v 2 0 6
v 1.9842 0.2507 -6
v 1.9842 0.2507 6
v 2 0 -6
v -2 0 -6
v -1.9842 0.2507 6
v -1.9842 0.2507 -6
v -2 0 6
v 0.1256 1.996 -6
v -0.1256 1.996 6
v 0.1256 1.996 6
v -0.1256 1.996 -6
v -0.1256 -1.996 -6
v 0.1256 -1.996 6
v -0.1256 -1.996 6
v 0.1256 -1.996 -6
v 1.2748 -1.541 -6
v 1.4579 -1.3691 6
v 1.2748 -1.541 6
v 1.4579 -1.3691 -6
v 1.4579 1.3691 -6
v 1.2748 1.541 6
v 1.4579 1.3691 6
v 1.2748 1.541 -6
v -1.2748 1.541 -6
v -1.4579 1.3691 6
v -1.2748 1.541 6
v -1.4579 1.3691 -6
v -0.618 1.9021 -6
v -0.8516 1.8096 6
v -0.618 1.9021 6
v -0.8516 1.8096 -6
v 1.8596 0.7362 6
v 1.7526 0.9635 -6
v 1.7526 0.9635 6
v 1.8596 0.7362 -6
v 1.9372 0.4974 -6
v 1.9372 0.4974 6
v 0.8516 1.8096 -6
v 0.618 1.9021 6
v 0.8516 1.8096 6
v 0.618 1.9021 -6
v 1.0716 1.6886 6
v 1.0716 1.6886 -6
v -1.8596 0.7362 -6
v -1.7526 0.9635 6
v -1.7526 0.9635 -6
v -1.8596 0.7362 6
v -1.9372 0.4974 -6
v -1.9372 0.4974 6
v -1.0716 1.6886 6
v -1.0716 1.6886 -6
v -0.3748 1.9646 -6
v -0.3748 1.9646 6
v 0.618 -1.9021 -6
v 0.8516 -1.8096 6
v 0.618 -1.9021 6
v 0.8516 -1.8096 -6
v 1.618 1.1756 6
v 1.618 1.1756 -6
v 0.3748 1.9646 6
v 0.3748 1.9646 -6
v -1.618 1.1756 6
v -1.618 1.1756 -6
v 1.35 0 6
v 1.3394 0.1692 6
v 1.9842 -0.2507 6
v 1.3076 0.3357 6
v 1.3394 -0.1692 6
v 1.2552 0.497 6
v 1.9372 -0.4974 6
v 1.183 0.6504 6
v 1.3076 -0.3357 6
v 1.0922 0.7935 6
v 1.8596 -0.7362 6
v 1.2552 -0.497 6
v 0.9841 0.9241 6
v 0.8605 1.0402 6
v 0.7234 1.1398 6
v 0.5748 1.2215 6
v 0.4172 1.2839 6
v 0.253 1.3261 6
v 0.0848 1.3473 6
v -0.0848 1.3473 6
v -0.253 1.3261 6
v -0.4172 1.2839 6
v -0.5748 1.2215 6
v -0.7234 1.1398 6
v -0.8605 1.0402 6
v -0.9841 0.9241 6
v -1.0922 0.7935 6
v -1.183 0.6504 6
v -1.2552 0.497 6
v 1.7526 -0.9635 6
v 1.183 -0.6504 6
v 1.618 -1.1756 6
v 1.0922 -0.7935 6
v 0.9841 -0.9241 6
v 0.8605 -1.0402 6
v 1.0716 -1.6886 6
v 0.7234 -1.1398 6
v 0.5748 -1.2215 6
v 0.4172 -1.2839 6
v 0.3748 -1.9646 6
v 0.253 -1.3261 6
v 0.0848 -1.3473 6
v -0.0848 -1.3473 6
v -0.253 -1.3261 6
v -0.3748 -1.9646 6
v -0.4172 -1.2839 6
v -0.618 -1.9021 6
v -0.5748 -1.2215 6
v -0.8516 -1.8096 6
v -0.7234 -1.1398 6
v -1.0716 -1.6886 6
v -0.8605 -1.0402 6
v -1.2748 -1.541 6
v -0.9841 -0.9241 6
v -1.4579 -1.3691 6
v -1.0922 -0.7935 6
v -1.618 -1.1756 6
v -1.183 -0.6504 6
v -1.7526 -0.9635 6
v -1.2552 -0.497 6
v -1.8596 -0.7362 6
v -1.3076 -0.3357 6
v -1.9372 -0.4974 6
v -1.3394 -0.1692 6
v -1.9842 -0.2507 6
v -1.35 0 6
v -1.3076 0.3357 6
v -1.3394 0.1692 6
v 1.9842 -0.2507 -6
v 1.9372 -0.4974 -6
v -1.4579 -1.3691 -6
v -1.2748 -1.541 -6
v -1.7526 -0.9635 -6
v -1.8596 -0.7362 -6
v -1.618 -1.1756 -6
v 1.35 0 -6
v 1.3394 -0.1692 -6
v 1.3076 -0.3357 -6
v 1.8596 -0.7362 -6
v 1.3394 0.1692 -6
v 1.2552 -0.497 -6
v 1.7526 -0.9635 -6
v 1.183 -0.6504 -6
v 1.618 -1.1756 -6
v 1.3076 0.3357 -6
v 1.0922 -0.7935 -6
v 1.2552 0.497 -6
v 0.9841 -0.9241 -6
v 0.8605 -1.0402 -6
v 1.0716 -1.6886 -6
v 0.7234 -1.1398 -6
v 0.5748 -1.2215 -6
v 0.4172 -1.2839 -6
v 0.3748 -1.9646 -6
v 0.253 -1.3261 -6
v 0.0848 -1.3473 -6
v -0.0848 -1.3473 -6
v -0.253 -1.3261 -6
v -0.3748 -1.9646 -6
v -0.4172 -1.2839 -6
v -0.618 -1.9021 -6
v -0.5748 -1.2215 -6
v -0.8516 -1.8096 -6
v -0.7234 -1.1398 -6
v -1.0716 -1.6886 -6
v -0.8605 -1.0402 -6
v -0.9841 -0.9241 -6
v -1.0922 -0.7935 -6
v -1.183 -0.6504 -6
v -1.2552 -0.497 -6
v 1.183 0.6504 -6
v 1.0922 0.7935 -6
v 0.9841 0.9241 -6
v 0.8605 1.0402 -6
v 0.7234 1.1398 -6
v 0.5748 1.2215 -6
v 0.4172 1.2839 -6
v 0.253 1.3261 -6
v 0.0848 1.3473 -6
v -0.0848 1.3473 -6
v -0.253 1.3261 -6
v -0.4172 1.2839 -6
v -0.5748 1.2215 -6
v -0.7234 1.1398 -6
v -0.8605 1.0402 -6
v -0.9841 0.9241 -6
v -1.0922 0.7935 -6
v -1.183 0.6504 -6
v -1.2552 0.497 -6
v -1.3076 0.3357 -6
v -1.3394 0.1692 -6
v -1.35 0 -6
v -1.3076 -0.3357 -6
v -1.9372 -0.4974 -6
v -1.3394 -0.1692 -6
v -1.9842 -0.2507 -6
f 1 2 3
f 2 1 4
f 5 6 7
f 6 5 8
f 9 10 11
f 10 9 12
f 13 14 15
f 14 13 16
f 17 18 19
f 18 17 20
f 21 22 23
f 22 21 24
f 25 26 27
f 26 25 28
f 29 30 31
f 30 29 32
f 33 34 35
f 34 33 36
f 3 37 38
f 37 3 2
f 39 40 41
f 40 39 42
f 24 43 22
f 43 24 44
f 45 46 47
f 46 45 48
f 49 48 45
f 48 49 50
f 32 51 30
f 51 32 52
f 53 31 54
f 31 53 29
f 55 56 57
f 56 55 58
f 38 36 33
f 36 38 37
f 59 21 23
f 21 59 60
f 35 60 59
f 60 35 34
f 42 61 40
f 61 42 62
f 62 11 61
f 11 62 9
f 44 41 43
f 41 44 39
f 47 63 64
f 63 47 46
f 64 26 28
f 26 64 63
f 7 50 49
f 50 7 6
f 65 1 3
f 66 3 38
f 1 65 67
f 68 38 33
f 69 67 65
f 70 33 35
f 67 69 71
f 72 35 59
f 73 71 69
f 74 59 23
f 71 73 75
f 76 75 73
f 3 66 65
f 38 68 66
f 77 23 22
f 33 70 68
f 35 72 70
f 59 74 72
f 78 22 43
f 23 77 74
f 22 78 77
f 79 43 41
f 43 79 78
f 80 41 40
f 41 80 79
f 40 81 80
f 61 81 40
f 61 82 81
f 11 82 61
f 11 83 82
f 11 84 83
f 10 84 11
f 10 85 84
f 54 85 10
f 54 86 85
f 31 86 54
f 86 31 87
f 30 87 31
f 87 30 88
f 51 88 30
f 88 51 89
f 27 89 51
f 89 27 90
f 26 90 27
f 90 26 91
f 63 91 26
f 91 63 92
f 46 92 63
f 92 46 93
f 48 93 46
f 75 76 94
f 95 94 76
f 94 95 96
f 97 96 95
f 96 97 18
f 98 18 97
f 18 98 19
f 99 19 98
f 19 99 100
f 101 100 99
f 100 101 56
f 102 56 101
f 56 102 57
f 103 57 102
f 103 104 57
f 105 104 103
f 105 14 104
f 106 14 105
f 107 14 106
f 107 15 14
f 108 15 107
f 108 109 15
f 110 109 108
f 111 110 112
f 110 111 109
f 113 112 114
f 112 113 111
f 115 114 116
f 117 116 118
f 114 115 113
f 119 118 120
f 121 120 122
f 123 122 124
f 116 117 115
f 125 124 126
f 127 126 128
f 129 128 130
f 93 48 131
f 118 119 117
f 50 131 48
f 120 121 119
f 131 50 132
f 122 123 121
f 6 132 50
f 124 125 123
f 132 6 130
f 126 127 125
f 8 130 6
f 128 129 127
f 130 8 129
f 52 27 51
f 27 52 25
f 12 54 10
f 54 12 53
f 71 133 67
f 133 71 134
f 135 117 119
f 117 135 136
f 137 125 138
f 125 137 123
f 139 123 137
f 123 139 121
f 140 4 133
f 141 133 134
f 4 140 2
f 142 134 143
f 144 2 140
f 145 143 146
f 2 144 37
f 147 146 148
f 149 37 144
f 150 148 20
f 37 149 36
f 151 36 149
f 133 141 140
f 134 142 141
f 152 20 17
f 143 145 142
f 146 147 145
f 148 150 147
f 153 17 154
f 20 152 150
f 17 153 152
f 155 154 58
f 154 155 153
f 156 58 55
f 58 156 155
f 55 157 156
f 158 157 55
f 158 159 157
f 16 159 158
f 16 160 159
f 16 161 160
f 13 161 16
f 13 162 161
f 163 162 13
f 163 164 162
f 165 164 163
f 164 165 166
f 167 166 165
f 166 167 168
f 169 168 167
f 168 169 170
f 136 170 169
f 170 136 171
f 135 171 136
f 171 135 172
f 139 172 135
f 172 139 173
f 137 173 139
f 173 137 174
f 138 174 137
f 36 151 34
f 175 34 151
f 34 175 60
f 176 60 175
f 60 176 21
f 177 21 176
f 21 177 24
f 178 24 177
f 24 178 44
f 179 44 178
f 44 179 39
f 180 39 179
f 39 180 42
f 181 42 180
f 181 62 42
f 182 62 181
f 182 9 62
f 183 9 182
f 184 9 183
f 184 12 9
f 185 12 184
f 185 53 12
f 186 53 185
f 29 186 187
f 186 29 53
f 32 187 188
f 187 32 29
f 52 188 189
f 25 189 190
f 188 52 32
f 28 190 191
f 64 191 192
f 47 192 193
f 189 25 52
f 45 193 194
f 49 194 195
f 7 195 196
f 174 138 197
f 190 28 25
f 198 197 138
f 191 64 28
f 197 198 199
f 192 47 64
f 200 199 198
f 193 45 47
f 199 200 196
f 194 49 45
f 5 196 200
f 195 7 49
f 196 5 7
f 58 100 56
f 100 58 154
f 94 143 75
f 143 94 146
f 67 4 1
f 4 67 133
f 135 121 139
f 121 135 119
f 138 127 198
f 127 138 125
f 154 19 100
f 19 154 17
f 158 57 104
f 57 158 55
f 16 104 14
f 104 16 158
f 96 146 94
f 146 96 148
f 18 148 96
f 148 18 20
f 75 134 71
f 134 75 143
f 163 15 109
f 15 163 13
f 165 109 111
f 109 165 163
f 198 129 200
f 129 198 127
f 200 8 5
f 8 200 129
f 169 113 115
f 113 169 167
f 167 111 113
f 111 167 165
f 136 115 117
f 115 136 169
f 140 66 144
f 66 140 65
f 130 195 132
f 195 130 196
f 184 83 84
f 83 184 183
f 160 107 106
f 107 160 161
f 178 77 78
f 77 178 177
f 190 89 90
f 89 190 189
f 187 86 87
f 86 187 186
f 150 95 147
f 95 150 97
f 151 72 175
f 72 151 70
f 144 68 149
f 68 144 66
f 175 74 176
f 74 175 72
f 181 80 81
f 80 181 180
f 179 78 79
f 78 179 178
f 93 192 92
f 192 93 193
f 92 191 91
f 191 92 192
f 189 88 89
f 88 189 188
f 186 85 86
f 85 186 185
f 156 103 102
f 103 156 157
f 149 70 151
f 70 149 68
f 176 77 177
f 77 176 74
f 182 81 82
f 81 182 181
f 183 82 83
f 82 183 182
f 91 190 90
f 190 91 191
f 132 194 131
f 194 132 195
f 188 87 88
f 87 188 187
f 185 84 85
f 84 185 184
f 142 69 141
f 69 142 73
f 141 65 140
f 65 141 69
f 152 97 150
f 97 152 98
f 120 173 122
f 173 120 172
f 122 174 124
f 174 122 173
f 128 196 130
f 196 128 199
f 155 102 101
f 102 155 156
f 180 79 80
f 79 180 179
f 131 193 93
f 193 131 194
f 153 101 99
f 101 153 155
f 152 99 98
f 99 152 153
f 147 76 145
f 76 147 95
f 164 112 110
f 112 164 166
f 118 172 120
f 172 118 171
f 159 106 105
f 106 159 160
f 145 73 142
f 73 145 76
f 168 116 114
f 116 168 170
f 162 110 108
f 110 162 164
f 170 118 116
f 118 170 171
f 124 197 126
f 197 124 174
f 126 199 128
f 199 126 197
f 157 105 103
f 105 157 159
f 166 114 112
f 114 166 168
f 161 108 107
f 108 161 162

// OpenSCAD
$fn = 50;


difference() {
	union() {
		translate(v = [0, 0, -6.0000000000]) {
			cylinder(h = 12, r = 2.0000000000);
		}
	}
	union() {
		translate(v = [0, 0, -100.0000000000]) {
			cylinder(h = 200, r = 1.3500000000);
		}
	}
}
